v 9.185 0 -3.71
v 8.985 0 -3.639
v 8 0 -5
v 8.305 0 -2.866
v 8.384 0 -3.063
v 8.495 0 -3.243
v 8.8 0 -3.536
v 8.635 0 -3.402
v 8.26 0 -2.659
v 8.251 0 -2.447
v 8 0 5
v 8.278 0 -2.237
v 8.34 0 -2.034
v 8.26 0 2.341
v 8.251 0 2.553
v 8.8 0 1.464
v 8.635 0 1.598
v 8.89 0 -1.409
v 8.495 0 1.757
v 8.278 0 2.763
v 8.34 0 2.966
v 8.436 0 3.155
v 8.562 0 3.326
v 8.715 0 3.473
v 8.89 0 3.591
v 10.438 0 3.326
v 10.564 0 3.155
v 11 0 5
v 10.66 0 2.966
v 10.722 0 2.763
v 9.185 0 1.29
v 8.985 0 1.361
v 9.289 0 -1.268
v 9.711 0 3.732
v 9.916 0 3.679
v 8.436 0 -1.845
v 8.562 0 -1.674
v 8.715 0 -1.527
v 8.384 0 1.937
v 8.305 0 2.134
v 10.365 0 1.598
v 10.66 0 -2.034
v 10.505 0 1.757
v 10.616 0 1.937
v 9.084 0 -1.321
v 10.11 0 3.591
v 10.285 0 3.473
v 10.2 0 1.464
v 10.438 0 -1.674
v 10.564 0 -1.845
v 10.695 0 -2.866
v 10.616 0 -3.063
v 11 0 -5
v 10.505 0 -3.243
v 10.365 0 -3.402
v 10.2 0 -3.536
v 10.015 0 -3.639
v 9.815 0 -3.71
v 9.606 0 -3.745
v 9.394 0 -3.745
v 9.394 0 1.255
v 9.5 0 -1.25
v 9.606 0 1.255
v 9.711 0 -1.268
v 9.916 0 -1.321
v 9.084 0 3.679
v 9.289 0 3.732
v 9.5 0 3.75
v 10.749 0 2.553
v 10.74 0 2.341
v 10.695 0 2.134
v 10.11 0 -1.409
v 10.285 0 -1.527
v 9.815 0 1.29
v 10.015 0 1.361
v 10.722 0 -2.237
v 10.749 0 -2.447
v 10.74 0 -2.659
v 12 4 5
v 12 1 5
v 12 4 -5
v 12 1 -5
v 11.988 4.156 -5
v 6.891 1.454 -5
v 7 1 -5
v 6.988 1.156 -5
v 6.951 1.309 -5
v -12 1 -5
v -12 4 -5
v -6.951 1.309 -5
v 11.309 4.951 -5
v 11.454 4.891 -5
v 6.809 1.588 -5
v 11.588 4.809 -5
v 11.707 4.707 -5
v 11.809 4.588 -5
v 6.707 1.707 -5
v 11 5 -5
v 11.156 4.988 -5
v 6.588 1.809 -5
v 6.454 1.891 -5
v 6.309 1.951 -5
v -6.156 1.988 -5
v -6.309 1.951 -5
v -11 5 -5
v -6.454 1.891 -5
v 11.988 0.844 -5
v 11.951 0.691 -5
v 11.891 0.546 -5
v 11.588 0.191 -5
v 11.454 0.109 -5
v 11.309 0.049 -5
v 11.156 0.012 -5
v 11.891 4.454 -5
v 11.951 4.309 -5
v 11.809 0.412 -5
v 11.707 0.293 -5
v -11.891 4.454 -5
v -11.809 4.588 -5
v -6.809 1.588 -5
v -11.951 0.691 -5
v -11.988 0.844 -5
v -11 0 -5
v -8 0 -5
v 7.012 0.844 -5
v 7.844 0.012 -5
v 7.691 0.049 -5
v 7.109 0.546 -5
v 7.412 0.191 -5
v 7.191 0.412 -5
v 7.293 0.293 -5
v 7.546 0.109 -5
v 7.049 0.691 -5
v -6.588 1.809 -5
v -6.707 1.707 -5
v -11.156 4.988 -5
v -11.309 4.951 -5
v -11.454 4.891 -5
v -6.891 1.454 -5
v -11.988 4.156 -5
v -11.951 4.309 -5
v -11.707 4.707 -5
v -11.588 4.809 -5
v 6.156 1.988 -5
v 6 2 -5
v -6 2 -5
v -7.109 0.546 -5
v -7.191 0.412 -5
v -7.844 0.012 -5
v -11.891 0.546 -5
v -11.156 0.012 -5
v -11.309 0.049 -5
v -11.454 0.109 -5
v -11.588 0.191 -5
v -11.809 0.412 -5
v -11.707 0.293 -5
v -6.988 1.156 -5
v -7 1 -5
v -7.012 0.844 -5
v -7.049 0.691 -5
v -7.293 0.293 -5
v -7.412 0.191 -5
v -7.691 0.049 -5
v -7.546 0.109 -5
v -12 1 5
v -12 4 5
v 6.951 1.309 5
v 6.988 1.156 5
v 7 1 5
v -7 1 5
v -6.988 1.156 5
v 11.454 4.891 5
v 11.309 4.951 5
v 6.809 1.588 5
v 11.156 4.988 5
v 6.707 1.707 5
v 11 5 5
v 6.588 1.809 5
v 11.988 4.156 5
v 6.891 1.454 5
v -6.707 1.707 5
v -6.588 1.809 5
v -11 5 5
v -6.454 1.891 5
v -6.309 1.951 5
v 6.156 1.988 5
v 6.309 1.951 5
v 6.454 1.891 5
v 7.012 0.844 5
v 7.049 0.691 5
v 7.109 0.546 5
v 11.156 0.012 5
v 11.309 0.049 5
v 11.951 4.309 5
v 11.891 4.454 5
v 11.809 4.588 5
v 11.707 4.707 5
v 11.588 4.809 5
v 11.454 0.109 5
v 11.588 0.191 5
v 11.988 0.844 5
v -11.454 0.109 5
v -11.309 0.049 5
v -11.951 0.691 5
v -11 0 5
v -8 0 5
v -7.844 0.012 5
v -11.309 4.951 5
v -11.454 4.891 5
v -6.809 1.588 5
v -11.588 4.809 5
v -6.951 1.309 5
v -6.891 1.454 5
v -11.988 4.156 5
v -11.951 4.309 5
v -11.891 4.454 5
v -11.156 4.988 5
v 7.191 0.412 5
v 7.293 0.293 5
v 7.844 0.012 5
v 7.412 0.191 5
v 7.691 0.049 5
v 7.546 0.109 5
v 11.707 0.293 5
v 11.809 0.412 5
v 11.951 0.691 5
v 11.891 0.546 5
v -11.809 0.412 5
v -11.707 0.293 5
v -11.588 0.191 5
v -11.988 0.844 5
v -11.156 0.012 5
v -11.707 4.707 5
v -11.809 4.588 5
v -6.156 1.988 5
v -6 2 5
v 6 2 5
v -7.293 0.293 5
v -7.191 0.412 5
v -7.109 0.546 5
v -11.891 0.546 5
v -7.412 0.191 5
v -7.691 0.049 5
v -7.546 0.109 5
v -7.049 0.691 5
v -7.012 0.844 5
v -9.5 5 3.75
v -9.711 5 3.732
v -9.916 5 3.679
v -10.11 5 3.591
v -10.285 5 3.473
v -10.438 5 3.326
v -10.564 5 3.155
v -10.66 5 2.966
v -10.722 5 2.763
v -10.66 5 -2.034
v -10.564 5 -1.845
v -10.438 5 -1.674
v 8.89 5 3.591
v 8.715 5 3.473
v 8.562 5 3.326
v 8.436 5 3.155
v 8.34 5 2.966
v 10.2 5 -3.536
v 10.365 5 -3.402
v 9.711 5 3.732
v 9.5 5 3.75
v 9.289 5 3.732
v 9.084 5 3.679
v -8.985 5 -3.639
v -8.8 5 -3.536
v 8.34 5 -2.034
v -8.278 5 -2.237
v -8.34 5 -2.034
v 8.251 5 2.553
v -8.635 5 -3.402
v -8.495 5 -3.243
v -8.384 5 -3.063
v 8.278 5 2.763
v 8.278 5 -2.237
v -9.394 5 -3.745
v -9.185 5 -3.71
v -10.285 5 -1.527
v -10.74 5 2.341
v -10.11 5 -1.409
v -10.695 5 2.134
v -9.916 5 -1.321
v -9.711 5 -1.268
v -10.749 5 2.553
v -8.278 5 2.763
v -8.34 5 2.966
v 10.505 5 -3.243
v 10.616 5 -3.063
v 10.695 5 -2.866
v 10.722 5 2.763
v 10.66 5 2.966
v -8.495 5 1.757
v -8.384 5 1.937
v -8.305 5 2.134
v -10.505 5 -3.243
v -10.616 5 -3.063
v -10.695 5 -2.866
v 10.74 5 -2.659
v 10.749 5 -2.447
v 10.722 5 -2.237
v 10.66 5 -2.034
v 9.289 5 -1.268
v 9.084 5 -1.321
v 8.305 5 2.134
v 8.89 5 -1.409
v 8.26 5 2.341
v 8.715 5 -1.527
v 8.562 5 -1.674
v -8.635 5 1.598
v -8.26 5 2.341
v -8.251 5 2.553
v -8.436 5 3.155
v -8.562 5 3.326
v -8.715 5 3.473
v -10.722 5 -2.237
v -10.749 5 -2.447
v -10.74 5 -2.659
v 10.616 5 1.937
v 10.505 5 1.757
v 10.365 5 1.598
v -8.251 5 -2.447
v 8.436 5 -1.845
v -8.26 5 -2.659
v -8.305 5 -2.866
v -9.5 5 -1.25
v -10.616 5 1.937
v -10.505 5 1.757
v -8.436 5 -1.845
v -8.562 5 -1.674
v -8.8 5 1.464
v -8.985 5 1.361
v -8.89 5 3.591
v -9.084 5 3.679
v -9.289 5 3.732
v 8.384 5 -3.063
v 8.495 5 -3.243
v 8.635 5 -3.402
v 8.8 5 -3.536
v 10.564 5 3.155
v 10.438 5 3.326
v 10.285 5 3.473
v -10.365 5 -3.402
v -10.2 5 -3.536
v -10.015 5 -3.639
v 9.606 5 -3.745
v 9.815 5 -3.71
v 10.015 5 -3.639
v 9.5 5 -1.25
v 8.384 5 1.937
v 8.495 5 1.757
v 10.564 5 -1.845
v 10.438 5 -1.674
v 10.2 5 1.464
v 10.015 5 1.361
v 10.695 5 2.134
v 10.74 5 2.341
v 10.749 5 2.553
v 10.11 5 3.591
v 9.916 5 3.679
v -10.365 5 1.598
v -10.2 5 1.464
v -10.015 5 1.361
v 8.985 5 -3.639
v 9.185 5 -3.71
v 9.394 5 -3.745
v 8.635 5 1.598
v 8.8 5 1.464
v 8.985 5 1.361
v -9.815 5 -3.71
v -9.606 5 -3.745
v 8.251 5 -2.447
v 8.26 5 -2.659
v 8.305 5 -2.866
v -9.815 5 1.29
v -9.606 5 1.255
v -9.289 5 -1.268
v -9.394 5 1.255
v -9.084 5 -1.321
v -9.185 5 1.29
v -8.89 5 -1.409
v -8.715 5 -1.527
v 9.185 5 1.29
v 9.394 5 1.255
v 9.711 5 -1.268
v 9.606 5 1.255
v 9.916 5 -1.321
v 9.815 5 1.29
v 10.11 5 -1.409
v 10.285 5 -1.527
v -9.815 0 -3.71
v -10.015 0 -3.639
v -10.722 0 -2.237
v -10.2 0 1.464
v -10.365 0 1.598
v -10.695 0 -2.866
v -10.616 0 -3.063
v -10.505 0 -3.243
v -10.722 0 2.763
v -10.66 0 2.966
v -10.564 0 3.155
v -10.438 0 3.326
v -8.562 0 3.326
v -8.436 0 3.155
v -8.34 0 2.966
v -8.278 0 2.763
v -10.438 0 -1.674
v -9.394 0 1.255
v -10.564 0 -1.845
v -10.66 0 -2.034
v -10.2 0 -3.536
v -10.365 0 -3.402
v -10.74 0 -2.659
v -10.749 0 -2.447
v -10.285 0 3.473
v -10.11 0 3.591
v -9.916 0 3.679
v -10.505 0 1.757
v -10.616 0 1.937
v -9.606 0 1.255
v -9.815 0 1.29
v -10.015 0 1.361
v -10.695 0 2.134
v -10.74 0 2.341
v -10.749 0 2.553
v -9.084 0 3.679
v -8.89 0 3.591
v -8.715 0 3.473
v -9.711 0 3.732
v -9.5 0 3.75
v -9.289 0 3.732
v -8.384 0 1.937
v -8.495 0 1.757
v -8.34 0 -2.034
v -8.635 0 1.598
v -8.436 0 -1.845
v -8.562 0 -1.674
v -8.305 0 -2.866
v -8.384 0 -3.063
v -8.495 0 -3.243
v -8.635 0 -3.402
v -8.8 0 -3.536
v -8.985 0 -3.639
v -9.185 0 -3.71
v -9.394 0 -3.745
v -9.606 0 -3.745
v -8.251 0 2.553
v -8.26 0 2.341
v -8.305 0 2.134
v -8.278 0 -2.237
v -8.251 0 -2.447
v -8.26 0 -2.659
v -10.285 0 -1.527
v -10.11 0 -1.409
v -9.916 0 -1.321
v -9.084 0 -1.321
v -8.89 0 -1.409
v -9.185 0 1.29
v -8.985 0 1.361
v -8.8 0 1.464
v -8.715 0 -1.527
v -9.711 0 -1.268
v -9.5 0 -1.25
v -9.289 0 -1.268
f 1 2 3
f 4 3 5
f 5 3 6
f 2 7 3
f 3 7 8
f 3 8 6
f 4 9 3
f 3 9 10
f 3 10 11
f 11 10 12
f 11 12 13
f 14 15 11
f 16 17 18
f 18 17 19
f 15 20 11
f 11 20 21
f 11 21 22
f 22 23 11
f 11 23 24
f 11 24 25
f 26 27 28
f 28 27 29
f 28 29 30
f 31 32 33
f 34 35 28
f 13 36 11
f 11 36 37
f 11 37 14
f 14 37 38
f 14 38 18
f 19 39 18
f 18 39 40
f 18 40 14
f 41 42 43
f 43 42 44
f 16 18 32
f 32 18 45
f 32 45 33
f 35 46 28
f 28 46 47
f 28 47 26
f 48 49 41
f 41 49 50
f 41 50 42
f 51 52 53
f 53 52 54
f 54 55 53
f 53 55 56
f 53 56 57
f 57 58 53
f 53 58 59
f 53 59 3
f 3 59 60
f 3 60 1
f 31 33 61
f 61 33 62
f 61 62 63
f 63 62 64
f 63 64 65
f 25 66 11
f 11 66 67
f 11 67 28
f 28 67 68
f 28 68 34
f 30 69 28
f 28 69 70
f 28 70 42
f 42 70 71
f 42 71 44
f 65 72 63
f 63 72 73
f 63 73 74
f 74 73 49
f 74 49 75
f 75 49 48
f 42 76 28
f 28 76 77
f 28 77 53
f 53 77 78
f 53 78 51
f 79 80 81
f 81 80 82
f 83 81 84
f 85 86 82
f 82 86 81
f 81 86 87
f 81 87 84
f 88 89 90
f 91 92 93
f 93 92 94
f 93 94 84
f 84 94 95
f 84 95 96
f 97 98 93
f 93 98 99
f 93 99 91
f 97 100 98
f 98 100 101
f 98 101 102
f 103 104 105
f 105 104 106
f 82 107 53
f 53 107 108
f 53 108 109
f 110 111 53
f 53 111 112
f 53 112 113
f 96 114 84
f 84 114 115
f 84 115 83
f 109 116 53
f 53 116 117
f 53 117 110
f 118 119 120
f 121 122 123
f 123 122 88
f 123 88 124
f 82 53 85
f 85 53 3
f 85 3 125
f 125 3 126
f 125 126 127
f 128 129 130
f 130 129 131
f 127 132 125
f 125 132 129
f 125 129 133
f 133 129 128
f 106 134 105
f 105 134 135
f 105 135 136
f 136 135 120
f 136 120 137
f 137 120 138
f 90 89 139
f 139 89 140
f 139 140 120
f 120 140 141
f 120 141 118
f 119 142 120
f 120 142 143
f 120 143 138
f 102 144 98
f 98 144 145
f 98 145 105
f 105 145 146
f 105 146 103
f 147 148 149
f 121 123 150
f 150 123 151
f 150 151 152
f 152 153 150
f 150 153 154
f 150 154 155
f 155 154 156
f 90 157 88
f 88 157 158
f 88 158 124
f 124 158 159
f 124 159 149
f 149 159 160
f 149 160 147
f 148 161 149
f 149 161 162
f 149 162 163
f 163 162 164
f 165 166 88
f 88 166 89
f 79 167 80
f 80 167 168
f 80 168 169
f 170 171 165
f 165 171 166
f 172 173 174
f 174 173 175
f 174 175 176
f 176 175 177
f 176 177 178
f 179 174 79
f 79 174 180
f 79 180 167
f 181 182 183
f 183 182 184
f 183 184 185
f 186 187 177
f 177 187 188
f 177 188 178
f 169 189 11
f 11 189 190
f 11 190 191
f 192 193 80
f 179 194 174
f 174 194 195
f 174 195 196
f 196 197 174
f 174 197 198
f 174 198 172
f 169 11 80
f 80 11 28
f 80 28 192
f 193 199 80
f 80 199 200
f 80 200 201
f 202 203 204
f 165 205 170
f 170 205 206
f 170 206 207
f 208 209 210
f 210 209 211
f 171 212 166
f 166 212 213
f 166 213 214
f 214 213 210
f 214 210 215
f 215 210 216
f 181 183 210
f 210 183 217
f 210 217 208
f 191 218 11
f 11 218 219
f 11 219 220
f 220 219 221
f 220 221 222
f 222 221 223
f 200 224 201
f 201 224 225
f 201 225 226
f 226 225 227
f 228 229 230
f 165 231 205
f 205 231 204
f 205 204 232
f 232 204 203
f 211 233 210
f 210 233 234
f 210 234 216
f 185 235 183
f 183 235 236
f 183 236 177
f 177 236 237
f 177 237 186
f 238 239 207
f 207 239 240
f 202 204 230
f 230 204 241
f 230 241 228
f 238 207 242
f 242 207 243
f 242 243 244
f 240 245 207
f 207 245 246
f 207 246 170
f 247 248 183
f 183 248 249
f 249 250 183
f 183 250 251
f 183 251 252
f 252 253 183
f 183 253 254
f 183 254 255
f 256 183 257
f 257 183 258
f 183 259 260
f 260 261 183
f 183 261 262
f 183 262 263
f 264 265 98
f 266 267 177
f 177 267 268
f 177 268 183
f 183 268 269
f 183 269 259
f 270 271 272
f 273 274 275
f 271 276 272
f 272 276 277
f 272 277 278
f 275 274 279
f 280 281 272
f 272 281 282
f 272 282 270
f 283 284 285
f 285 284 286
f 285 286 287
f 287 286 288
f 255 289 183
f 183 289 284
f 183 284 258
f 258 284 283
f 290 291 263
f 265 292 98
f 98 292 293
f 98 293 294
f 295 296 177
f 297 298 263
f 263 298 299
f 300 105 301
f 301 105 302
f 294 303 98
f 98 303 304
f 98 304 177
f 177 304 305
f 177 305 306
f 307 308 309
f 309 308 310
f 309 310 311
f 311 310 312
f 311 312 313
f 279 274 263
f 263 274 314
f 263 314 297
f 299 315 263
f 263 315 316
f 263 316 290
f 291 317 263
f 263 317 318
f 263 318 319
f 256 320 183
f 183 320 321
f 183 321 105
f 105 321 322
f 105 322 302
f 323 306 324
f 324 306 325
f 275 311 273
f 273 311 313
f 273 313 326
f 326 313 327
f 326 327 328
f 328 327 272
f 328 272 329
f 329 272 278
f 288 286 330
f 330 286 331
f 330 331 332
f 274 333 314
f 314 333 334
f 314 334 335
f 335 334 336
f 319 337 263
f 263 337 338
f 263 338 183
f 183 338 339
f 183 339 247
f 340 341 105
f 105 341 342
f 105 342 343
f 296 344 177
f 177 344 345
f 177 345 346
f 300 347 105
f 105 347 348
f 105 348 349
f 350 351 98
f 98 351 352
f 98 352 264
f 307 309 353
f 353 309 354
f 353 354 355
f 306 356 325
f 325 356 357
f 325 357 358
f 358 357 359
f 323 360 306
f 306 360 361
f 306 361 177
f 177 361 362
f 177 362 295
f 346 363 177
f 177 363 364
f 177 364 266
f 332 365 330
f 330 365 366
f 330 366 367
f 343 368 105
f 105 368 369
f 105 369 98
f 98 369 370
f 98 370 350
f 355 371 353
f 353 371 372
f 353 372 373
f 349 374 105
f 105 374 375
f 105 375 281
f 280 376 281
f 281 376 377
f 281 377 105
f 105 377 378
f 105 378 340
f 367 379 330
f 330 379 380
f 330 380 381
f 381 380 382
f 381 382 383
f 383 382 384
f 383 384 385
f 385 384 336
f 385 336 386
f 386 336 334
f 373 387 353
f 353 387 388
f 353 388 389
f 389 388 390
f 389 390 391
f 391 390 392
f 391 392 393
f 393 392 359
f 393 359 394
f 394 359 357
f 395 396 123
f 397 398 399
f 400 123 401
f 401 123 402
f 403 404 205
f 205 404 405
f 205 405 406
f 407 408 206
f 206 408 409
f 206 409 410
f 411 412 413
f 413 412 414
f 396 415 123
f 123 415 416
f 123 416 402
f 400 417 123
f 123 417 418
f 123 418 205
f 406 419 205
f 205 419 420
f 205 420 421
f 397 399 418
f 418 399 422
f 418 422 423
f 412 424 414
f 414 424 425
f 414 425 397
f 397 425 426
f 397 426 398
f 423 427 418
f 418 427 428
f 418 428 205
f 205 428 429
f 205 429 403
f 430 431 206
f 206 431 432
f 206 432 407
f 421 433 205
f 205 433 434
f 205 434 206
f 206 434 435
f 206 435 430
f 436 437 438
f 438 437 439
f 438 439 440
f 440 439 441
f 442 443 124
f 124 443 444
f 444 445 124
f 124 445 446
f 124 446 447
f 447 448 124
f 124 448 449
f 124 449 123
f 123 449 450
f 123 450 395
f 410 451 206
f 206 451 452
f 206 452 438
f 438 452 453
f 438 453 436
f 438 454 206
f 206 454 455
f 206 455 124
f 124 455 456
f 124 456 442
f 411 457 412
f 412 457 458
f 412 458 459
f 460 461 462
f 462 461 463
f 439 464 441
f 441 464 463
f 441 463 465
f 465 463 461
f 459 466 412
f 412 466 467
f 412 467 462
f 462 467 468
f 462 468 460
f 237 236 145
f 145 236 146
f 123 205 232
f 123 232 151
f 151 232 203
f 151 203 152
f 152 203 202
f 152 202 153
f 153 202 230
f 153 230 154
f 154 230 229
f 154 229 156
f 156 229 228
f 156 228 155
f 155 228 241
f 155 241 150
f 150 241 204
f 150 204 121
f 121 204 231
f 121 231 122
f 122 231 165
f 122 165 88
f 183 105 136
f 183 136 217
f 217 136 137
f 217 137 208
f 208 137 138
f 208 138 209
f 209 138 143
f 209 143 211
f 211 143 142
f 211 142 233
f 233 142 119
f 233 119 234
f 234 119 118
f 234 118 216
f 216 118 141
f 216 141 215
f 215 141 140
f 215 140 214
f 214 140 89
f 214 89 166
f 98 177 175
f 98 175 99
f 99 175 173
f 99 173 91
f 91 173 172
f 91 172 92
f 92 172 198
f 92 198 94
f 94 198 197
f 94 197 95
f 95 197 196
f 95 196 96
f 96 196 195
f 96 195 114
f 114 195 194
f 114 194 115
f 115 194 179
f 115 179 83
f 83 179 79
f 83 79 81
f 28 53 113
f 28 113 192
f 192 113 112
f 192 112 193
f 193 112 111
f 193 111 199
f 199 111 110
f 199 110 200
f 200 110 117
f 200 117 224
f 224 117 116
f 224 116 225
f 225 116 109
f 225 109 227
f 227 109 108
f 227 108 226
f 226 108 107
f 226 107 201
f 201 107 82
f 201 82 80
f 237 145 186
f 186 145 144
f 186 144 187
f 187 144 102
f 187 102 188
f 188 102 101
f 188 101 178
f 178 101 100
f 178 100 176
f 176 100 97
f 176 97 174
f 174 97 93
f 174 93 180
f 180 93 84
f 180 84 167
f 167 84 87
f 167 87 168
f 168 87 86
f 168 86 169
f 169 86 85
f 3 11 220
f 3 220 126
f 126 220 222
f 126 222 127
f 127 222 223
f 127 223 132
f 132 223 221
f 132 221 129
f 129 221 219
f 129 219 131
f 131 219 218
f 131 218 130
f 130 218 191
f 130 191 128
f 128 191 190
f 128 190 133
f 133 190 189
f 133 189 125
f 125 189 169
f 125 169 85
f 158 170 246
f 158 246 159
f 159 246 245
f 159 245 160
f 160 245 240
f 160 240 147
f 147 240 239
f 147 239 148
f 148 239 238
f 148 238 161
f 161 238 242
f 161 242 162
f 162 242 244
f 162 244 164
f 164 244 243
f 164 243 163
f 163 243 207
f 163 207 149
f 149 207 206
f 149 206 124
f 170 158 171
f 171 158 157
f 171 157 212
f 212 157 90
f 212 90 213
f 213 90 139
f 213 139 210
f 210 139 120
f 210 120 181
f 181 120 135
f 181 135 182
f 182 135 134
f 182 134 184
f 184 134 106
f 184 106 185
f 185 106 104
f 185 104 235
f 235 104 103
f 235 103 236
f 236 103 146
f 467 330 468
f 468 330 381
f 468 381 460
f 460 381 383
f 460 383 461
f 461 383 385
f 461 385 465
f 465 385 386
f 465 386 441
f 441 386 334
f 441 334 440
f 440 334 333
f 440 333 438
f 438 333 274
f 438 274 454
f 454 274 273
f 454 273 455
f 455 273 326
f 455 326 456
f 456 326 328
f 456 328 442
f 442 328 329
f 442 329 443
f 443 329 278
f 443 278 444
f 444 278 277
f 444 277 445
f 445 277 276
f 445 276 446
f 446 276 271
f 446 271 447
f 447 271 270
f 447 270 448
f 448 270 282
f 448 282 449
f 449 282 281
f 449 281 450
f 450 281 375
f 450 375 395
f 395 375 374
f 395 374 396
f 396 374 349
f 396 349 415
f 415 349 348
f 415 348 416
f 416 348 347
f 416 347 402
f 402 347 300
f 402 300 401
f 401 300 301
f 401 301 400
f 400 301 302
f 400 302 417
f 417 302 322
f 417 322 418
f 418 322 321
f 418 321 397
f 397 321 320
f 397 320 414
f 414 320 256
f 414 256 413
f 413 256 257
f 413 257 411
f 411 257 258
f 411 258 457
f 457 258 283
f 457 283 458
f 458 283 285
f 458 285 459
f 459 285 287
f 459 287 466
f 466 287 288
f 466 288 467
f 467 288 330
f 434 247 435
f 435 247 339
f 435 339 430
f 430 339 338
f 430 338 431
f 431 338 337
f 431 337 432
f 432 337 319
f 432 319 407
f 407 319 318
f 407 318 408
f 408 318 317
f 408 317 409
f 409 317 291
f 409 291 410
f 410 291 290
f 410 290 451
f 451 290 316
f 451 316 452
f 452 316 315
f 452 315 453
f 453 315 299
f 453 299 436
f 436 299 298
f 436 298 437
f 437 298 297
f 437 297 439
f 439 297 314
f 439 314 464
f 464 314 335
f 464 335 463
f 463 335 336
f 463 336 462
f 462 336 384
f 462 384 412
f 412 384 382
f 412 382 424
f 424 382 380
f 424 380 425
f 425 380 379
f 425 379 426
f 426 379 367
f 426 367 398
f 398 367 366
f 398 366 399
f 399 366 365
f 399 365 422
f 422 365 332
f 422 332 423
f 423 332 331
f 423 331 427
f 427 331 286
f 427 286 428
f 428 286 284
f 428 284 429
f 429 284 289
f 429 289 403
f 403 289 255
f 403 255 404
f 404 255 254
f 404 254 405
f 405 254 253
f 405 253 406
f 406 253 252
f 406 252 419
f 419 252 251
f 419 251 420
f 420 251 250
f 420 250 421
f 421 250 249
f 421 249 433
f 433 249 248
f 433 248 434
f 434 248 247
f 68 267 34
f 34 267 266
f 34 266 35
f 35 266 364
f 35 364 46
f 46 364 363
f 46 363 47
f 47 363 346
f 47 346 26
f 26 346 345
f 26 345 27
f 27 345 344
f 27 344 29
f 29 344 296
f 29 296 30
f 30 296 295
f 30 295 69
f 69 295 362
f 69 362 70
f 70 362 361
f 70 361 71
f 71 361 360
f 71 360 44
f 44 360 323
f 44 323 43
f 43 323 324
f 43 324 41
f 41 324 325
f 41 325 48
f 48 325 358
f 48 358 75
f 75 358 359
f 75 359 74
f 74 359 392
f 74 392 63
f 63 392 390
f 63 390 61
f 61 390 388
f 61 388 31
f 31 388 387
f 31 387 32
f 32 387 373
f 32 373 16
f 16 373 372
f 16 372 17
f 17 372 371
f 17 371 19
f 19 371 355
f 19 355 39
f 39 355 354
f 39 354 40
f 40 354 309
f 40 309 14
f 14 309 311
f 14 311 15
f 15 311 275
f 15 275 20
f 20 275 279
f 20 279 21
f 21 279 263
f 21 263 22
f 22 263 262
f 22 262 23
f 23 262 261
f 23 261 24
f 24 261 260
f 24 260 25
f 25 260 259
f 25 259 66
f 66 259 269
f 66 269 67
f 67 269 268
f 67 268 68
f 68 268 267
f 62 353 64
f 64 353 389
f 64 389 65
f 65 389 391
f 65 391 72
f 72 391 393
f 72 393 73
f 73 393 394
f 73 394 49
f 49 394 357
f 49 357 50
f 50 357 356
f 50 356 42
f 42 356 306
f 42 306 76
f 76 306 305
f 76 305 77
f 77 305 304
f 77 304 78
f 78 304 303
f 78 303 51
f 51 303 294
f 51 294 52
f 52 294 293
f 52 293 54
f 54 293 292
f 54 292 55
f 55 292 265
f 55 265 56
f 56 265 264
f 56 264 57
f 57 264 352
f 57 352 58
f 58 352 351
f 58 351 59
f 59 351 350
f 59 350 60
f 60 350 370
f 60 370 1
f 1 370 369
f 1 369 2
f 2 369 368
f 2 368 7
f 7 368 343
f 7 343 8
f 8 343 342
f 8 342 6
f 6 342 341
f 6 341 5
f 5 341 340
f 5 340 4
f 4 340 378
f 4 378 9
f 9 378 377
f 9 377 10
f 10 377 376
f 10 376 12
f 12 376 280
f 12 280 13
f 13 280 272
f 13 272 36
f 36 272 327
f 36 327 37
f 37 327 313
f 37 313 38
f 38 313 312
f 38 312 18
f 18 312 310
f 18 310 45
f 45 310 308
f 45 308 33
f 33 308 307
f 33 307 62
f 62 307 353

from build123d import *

# Parameters (mm, degrees)
SKETCH1_W           = 24
SKETCH1_H           = 10
BOSS_EXTRUDE1_DEPTH = 5
SKETCH2_W           = 14
SKETCH2_H           = 2
CUT_EXTRUDE1_DEPTH  = 17.401219467
FILLET1_R           = 1
SKETCH3_R           = 1.25
CUT_EXTRUDE2_DEPTH  = 14.928388277


with BuildPart() as part:
    # Sketch1 → Boss-Extrude1 (new body)
    with BuildSketch(Plane(origin=(0, 0, 0), x_dir=(1, 0, 0), z_dir=(0, 1, 0))):
        Rectangle(SKETCH1_W, SKETCH1_H)
    extrude(amount=BOSS_EXTRUDE1_DEPTH)

    # Sketch2 → Cut-Extrude1 (cut, through all)
    with BuildSketch(Plane.XY.offset(5)):
        with Locations((0, 1)):
            Rectangle(SKETCH2_W, SKETCH2_H)
    extrude(amount=-CUT_EXTRUDE1_DEPTH, mode=Mode.SUBTRACT)

    # Fillet1
    fillet1_edges = [part.edges().sort_by_distance(p)[0] for p in [
        (-12, 0, 0),
        (-12, 5, 0),
        (12, 5, 0),
        (12, 0, 0),
        (7, 0, 0),
        (7, 2, 0),
        (-7, 2, 0),
        (-7, 0, 0),
    ]]
    fillet(fillet1_edges, radius=FILLET1_R - 0.0001)  # a hair under: the kernel refuses the full size

    # Sketch3 → Cut-Extrude2 (cut, through all)
    with BuildSketch(Plane(origin=(0, 5, 0), x_dir=(1, 0, 0), z_dir=(0, 1, 0))):
        with Locations(Location((-9.5, 2.5, 0), (0, 0, 270))):
            Circle(SKETCH3_R)
        with Locations(Location((9.5, 2.5, 0), (0, 0, 270))):
            Circle(SKETCH3_R)
        with Locations(Location((-9.5, -2.5, 0), (0, 0, 270))):
            Circle(SKETCH3_R)
        with Locations(Location((9.5, -2.5, 0), (0, 0, 270))):
            Circle(SKETCH3_R)
    extrude(amount=-CUT_EXTRUDE2_DEPTH, mode=Mode.SUBTRACT)


solid = part.part
